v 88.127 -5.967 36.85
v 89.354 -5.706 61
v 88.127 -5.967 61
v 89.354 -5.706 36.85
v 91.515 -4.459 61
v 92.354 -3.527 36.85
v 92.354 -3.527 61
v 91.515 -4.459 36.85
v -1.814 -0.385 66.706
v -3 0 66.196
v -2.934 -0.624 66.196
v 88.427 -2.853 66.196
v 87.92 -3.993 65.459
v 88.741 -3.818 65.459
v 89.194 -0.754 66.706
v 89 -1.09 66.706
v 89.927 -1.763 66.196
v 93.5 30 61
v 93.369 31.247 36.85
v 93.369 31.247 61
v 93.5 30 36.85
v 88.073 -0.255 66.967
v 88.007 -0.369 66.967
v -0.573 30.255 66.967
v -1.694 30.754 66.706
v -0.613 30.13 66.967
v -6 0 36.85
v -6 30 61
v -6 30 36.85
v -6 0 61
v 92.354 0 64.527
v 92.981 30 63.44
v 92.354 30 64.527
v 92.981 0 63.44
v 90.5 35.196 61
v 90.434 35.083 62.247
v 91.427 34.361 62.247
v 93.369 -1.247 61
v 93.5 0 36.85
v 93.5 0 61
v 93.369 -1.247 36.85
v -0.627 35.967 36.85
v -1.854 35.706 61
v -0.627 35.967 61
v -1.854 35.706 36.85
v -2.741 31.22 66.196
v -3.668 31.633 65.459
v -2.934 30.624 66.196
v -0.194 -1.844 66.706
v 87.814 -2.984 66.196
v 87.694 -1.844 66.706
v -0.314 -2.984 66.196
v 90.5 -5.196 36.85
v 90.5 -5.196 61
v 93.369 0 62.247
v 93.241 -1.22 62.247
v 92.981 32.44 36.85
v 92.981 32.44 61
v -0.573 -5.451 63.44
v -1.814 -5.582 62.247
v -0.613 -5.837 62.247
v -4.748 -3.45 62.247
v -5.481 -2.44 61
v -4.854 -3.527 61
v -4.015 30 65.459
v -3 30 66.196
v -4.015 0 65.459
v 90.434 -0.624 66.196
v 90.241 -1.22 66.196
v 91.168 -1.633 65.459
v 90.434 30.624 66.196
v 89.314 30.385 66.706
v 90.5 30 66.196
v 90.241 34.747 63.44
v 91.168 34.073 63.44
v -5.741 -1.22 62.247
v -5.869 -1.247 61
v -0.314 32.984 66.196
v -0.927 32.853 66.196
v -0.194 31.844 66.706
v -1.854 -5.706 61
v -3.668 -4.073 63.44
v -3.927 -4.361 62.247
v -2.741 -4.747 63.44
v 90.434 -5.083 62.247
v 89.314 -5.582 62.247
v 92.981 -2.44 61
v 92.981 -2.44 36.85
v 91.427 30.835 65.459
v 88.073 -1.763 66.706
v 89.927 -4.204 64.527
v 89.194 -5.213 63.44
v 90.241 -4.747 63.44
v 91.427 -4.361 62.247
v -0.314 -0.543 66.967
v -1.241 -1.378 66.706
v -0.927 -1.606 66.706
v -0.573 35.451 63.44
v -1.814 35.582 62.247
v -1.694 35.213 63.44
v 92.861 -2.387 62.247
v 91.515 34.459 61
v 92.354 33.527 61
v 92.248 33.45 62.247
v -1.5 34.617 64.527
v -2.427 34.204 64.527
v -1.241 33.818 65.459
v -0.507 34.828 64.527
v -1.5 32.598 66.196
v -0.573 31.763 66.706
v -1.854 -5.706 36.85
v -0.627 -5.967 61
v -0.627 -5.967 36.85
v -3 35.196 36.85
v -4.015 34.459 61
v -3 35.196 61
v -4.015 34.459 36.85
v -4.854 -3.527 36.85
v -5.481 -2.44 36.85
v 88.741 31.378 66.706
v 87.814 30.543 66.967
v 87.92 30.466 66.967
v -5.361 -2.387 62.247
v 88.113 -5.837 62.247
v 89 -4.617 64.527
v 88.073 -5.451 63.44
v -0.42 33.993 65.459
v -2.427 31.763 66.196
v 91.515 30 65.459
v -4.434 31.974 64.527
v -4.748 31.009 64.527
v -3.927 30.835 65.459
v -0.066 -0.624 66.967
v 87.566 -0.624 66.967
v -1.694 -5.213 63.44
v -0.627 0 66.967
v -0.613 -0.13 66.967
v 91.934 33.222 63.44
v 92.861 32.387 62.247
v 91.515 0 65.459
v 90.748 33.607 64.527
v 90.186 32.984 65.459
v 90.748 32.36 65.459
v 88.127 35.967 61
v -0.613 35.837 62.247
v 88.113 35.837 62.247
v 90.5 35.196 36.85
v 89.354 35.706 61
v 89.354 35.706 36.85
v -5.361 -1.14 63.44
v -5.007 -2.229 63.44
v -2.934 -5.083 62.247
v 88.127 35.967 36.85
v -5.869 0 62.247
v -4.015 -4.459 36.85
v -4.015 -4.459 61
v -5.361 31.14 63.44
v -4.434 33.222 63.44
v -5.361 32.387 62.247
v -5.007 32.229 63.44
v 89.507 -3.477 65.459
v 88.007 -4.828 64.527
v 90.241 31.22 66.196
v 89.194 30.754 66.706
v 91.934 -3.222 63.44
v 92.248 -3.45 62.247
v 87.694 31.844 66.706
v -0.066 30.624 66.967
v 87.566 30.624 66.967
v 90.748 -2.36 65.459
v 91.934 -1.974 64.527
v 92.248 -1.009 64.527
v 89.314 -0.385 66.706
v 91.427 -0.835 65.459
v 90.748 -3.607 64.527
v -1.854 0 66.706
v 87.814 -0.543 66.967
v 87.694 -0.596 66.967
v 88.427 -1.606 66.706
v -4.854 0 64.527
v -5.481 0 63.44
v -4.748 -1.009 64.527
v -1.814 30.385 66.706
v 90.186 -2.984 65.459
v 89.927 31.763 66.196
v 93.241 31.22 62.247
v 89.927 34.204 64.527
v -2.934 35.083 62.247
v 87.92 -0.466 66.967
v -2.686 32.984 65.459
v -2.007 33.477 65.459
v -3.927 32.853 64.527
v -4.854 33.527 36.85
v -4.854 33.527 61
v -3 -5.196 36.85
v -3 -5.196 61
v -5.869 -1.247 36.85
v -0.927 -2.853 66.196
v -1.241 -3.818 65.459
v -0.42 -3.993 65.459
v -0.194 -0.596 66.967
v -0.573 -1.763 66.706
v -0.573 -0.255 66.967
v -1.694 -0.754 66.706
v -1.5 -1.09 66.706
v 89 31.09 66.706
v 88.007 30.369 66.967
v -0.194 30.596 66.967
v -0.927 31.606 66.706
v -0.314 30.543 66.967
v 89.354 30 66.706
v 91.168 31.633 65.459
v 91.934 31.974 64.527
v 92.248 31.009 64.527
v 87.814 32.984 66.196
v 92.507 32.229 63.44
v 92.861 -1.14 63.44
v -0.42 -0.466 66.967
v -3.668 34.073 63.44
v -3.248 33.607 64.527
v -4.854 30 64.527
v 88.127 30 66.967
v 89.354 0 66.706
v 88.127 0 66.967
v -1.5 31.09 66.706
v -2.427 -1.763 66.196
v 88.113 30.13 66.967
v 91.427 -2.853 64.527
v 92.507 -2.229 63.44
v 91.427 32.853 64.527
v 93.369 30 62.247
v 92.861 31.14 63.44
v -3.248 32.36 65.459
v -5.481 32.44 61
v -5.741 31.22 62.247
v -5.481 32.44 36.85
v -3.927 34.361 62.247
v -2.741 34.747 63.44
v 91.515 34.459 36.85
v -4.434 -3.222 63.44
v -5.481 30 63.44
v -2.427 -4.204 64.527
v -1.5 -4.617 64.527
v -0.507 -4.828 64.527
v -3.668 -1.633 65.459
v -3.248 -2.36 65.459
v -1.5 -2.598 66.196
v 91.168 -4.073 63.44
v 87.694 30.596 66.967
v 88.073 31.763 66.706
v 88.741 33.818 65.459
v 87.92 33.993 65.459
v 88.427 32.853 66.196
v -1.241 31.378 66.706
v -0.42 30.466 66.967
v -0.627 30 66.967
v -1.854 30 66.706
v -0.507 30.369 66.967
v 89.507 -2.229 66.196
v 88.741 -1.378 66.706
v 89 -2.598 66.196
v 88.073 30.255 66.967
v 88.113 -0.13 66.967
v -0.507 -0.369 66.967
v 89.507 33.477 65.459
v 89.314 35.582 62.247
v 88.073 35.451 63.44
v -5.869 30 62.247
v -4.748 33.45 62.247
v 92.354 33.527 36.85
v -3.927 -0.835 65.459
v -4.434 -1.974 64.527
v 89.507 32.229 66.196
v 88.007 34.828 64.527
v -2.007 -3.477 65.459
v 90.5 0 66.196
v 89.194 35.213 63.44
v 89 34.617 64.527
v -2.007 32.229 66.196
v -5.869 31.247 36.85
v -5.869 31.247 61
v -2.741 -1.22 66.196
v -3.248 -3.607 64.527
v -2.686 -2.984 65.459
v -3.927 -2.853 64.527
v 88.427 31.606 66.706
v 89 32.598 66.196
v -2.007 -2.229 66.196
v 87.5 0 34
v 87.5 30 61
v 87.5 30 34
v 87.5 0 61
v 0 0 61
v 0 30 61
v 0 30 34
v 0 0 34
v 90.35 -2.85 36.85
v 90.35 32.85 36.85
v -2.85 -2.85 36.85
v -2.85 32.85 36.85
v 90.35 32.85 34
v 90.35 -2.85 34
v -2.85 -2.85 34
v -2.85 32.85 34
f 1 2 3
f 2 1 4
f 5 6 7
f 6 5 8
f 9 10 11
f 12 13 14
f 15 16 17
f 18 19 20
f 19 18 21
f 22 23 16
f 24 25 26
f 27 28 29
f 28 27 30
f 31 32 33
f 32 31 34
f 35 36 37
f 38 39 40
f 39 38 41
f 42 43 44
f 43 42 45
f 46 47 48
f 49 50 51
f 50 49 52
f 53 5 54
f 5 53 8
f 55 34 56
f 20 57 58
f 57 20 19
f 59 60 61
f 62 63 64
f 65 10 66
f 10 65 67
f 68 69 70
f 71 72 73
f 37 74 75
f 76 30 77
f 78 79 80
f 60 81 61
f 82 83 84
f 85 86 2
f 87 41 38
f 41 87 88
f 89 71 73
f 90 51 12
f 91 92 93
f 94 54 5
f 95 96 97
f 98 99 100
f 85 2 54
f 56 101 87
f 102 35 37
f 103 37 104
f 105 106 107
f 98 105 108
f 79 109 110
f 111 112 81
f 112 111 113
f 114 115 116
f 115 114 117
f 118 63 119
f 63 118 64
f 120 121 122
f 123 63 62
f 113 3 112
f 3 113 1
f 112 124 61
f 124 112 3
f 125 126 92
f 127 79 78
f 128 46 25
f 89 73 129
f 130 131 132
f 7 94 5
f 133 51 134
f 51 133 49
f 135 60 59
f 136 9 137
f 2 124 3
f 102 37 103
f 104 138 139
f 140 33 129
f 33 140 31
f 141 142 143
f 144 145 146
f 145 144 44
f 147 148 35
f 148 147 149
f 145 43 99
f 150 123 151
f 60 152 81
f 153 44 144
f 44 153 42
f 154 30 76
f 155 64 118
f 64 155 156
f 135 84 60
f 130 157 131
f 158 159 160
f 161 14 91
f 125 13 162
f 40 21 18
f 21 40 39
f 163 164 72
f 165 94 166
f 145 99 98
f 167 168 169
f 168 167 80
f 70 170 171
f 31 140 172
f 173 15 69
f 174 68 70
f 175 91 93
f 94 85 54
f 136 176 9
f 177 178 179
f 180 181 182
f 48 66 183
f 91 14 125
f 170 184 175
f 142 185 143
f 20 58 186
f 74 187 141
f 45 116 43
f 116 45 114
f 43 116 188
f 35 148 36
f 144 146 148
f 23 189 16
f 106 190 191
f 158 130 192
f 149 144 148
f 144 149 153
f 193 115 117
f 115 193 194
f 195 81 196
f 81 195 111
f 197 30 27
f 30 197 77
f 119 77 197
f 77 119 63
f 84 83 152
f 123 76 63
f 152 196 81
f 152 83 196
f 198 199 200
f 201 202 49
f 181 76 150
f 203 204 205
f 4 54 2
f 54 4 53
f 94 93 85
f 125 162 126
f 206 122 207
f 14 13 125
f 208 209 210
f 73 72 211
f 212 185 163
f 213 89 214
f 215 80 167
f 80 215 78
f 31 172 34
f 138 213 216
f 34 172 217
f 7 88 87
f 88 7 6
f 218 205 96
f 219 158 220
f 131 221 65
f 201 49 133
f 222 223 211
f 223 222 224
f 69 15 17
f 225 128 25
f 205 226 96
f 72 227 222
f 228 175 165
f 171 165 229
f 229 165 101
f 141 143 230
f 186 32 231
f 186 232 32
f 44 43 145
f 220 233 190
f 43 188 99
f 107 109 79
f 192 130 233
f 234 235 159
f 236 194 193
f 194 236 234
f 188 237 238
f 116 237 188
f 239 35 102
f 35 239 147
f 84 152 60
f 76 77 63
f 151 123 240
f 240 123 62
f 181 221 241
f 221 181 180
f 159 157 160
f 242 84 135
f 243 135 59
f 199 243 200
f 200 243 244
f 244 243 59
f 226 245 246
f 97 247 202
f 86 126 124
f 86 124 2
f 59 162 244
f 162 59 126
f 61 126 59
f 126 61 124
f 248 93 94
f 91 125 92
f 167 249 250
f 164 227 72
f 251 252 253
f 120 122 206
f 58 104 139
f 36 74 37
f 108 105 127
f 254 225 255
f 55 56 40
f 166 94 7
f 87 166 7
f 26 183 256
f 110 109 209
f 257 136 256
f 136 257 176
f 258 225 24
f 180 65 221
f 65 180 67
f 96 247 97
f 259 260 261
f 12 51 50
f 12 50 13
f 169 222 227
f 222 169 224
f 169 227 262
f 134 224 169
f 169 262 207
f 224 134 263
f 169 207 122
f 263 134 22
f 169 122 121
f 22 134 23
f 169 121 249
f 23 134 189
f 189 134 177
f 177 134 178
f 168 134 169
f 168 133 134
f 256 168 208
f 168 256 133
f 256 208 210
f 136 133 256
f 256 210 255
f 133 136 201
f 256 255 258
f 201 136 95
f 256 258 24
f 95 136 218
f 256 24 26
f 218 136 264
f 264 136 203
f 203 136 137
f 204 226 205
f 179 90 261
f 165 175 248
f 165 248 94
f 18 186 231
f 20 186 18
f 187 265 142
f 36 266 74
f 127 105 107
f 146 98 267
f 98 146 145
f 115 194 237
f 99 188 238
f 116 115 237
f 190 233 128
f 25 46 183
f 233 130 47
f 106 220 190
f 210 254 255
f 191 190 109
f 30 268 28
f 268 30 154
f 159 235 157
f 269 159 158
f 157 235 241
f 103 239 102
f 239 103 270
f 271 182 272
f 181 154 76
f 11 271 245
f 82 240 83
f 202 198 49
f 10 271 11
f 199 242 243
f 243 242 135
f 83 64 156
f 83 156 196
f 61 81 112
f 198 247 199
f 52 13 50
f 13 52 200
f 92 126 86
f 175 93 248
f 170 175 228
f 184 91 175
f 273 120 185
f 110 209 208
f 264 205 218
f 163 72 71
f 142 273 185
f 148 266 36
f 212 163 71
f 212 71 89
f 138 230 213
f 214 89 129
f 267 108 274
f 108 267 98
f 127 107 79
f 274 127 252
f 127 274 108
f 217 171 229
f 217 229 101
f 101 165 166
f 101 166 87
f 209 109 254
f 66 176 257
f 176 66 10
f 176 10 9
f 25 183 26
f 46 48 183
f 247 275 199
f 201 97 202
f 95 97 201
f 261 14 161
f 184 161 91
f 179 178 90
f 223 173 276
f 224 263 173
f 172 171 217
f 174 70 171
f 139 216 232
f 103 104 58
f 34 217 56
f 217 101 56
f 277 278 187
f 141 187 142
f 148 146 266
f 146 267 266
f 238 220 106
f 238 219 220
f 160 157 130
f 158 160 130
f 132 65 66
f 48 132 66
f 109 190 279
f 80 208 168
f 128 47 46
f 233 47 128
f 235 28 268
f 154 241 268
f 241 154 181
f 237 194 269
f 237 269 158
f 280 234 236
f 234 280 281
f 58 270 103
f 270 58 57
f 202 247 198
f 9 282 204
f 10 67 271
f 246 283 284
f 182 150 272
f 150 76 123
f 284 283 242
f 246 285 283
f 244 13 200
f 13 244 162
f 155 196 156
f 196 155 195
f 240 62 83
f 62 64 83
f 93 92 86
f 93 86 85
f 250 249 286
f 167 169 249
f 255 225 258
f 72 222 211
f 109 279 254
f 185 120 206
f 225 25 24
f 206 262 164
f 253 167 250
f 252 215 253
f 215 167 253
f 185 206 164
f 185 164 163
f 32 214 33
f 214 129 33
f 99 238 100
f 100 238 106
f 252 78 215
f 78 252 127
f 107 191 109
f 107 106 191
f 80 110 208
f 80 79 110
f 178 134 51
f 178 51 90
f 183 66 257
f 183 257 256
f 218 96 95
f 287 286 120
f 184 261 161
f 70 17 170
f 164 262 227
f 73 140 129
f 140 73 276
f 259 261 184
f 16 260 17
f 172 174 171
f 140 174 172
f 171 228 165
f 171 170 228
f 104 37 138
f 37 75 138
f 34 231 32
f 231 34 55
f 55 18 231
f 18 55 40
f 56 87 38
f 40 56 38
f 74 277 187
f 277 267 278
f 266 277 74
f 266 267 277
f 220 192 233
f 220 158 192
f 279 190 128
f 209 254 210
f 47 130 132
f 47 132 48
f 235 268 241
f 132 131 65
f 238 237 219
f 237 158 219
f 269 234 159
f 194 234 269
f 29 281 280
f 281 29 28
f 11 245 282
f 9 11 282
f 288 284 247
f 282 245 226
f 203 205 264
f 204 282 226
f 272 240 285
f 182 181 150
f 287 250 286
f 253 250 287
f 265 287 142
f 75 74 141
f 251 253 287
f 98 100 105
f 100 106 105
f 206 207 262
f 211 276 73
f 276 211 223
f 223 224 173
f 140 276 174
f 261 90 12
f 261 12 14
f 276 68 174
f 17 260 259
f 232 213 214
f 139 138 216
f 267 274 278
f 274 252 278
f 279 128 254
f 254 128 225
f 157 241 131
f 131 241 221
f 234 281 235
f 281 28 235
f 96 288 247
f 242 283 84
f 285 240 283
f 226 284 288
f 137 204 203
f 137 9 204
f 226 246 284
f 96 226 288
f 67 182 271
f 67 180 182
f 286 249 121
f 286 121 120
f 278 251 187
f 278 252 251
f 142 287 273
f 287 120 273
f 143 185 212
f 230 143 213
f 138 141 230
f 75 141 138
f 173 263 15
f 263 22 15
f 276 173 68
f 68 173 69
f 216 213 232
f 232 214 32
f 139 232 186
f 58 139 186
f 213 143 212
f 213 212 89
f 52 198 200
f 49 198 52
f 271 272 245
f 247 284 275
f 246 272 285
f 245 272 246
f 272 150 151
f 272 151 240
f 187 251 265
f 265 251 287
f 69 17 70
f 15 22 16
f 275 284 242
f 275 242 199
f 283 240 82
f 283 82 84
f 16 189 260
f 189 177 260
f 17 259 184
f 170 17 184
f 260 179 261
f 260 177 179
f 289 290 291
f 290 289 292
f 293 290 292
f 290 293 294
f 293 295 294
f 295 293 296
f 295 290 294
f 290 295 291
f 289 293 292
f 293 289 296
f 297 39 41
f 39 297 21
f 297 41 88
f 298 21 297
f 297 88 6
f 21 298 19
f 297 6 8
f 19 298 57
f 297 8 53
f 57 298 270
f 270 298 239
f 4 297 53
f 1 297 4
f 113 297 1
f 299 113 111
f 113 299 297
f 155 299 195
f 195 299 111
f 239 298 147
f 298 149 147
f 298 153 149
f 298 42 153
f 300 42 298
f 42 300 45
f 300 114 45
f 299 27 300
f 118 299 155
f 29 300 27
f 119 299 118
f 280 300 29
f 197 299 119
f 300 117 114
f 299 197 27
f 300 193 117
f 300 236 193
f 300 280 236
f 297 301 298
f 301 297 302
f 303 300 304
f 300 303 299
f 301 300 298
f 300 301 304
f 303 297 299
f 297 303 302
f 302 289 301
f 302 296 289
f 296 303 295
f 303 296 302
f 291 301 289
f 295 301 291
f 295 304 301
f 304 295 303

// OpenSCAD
difference () {
  translate ([43.75, 15.0, 61/2]) {
    difference () {
      minkowski () {
        cube ([87.5, 30.0, 61], center=true);
        sphere ($fn=30, r=6);
      }
      cube ([87.5, 30.0, 61], center=true);
    }
  }
  translate ([0, 0, -66]) {
    cube ([200, 200, 200], center=true);
  }
  translate ([43.74999999999999, 15.000000000000002, -63.15]) {
    difference () {
      cube ([300, 300, 200], center=true);
      cube ([93.19999999999999, 35.7, 300], center=true);
    }
  }
}
